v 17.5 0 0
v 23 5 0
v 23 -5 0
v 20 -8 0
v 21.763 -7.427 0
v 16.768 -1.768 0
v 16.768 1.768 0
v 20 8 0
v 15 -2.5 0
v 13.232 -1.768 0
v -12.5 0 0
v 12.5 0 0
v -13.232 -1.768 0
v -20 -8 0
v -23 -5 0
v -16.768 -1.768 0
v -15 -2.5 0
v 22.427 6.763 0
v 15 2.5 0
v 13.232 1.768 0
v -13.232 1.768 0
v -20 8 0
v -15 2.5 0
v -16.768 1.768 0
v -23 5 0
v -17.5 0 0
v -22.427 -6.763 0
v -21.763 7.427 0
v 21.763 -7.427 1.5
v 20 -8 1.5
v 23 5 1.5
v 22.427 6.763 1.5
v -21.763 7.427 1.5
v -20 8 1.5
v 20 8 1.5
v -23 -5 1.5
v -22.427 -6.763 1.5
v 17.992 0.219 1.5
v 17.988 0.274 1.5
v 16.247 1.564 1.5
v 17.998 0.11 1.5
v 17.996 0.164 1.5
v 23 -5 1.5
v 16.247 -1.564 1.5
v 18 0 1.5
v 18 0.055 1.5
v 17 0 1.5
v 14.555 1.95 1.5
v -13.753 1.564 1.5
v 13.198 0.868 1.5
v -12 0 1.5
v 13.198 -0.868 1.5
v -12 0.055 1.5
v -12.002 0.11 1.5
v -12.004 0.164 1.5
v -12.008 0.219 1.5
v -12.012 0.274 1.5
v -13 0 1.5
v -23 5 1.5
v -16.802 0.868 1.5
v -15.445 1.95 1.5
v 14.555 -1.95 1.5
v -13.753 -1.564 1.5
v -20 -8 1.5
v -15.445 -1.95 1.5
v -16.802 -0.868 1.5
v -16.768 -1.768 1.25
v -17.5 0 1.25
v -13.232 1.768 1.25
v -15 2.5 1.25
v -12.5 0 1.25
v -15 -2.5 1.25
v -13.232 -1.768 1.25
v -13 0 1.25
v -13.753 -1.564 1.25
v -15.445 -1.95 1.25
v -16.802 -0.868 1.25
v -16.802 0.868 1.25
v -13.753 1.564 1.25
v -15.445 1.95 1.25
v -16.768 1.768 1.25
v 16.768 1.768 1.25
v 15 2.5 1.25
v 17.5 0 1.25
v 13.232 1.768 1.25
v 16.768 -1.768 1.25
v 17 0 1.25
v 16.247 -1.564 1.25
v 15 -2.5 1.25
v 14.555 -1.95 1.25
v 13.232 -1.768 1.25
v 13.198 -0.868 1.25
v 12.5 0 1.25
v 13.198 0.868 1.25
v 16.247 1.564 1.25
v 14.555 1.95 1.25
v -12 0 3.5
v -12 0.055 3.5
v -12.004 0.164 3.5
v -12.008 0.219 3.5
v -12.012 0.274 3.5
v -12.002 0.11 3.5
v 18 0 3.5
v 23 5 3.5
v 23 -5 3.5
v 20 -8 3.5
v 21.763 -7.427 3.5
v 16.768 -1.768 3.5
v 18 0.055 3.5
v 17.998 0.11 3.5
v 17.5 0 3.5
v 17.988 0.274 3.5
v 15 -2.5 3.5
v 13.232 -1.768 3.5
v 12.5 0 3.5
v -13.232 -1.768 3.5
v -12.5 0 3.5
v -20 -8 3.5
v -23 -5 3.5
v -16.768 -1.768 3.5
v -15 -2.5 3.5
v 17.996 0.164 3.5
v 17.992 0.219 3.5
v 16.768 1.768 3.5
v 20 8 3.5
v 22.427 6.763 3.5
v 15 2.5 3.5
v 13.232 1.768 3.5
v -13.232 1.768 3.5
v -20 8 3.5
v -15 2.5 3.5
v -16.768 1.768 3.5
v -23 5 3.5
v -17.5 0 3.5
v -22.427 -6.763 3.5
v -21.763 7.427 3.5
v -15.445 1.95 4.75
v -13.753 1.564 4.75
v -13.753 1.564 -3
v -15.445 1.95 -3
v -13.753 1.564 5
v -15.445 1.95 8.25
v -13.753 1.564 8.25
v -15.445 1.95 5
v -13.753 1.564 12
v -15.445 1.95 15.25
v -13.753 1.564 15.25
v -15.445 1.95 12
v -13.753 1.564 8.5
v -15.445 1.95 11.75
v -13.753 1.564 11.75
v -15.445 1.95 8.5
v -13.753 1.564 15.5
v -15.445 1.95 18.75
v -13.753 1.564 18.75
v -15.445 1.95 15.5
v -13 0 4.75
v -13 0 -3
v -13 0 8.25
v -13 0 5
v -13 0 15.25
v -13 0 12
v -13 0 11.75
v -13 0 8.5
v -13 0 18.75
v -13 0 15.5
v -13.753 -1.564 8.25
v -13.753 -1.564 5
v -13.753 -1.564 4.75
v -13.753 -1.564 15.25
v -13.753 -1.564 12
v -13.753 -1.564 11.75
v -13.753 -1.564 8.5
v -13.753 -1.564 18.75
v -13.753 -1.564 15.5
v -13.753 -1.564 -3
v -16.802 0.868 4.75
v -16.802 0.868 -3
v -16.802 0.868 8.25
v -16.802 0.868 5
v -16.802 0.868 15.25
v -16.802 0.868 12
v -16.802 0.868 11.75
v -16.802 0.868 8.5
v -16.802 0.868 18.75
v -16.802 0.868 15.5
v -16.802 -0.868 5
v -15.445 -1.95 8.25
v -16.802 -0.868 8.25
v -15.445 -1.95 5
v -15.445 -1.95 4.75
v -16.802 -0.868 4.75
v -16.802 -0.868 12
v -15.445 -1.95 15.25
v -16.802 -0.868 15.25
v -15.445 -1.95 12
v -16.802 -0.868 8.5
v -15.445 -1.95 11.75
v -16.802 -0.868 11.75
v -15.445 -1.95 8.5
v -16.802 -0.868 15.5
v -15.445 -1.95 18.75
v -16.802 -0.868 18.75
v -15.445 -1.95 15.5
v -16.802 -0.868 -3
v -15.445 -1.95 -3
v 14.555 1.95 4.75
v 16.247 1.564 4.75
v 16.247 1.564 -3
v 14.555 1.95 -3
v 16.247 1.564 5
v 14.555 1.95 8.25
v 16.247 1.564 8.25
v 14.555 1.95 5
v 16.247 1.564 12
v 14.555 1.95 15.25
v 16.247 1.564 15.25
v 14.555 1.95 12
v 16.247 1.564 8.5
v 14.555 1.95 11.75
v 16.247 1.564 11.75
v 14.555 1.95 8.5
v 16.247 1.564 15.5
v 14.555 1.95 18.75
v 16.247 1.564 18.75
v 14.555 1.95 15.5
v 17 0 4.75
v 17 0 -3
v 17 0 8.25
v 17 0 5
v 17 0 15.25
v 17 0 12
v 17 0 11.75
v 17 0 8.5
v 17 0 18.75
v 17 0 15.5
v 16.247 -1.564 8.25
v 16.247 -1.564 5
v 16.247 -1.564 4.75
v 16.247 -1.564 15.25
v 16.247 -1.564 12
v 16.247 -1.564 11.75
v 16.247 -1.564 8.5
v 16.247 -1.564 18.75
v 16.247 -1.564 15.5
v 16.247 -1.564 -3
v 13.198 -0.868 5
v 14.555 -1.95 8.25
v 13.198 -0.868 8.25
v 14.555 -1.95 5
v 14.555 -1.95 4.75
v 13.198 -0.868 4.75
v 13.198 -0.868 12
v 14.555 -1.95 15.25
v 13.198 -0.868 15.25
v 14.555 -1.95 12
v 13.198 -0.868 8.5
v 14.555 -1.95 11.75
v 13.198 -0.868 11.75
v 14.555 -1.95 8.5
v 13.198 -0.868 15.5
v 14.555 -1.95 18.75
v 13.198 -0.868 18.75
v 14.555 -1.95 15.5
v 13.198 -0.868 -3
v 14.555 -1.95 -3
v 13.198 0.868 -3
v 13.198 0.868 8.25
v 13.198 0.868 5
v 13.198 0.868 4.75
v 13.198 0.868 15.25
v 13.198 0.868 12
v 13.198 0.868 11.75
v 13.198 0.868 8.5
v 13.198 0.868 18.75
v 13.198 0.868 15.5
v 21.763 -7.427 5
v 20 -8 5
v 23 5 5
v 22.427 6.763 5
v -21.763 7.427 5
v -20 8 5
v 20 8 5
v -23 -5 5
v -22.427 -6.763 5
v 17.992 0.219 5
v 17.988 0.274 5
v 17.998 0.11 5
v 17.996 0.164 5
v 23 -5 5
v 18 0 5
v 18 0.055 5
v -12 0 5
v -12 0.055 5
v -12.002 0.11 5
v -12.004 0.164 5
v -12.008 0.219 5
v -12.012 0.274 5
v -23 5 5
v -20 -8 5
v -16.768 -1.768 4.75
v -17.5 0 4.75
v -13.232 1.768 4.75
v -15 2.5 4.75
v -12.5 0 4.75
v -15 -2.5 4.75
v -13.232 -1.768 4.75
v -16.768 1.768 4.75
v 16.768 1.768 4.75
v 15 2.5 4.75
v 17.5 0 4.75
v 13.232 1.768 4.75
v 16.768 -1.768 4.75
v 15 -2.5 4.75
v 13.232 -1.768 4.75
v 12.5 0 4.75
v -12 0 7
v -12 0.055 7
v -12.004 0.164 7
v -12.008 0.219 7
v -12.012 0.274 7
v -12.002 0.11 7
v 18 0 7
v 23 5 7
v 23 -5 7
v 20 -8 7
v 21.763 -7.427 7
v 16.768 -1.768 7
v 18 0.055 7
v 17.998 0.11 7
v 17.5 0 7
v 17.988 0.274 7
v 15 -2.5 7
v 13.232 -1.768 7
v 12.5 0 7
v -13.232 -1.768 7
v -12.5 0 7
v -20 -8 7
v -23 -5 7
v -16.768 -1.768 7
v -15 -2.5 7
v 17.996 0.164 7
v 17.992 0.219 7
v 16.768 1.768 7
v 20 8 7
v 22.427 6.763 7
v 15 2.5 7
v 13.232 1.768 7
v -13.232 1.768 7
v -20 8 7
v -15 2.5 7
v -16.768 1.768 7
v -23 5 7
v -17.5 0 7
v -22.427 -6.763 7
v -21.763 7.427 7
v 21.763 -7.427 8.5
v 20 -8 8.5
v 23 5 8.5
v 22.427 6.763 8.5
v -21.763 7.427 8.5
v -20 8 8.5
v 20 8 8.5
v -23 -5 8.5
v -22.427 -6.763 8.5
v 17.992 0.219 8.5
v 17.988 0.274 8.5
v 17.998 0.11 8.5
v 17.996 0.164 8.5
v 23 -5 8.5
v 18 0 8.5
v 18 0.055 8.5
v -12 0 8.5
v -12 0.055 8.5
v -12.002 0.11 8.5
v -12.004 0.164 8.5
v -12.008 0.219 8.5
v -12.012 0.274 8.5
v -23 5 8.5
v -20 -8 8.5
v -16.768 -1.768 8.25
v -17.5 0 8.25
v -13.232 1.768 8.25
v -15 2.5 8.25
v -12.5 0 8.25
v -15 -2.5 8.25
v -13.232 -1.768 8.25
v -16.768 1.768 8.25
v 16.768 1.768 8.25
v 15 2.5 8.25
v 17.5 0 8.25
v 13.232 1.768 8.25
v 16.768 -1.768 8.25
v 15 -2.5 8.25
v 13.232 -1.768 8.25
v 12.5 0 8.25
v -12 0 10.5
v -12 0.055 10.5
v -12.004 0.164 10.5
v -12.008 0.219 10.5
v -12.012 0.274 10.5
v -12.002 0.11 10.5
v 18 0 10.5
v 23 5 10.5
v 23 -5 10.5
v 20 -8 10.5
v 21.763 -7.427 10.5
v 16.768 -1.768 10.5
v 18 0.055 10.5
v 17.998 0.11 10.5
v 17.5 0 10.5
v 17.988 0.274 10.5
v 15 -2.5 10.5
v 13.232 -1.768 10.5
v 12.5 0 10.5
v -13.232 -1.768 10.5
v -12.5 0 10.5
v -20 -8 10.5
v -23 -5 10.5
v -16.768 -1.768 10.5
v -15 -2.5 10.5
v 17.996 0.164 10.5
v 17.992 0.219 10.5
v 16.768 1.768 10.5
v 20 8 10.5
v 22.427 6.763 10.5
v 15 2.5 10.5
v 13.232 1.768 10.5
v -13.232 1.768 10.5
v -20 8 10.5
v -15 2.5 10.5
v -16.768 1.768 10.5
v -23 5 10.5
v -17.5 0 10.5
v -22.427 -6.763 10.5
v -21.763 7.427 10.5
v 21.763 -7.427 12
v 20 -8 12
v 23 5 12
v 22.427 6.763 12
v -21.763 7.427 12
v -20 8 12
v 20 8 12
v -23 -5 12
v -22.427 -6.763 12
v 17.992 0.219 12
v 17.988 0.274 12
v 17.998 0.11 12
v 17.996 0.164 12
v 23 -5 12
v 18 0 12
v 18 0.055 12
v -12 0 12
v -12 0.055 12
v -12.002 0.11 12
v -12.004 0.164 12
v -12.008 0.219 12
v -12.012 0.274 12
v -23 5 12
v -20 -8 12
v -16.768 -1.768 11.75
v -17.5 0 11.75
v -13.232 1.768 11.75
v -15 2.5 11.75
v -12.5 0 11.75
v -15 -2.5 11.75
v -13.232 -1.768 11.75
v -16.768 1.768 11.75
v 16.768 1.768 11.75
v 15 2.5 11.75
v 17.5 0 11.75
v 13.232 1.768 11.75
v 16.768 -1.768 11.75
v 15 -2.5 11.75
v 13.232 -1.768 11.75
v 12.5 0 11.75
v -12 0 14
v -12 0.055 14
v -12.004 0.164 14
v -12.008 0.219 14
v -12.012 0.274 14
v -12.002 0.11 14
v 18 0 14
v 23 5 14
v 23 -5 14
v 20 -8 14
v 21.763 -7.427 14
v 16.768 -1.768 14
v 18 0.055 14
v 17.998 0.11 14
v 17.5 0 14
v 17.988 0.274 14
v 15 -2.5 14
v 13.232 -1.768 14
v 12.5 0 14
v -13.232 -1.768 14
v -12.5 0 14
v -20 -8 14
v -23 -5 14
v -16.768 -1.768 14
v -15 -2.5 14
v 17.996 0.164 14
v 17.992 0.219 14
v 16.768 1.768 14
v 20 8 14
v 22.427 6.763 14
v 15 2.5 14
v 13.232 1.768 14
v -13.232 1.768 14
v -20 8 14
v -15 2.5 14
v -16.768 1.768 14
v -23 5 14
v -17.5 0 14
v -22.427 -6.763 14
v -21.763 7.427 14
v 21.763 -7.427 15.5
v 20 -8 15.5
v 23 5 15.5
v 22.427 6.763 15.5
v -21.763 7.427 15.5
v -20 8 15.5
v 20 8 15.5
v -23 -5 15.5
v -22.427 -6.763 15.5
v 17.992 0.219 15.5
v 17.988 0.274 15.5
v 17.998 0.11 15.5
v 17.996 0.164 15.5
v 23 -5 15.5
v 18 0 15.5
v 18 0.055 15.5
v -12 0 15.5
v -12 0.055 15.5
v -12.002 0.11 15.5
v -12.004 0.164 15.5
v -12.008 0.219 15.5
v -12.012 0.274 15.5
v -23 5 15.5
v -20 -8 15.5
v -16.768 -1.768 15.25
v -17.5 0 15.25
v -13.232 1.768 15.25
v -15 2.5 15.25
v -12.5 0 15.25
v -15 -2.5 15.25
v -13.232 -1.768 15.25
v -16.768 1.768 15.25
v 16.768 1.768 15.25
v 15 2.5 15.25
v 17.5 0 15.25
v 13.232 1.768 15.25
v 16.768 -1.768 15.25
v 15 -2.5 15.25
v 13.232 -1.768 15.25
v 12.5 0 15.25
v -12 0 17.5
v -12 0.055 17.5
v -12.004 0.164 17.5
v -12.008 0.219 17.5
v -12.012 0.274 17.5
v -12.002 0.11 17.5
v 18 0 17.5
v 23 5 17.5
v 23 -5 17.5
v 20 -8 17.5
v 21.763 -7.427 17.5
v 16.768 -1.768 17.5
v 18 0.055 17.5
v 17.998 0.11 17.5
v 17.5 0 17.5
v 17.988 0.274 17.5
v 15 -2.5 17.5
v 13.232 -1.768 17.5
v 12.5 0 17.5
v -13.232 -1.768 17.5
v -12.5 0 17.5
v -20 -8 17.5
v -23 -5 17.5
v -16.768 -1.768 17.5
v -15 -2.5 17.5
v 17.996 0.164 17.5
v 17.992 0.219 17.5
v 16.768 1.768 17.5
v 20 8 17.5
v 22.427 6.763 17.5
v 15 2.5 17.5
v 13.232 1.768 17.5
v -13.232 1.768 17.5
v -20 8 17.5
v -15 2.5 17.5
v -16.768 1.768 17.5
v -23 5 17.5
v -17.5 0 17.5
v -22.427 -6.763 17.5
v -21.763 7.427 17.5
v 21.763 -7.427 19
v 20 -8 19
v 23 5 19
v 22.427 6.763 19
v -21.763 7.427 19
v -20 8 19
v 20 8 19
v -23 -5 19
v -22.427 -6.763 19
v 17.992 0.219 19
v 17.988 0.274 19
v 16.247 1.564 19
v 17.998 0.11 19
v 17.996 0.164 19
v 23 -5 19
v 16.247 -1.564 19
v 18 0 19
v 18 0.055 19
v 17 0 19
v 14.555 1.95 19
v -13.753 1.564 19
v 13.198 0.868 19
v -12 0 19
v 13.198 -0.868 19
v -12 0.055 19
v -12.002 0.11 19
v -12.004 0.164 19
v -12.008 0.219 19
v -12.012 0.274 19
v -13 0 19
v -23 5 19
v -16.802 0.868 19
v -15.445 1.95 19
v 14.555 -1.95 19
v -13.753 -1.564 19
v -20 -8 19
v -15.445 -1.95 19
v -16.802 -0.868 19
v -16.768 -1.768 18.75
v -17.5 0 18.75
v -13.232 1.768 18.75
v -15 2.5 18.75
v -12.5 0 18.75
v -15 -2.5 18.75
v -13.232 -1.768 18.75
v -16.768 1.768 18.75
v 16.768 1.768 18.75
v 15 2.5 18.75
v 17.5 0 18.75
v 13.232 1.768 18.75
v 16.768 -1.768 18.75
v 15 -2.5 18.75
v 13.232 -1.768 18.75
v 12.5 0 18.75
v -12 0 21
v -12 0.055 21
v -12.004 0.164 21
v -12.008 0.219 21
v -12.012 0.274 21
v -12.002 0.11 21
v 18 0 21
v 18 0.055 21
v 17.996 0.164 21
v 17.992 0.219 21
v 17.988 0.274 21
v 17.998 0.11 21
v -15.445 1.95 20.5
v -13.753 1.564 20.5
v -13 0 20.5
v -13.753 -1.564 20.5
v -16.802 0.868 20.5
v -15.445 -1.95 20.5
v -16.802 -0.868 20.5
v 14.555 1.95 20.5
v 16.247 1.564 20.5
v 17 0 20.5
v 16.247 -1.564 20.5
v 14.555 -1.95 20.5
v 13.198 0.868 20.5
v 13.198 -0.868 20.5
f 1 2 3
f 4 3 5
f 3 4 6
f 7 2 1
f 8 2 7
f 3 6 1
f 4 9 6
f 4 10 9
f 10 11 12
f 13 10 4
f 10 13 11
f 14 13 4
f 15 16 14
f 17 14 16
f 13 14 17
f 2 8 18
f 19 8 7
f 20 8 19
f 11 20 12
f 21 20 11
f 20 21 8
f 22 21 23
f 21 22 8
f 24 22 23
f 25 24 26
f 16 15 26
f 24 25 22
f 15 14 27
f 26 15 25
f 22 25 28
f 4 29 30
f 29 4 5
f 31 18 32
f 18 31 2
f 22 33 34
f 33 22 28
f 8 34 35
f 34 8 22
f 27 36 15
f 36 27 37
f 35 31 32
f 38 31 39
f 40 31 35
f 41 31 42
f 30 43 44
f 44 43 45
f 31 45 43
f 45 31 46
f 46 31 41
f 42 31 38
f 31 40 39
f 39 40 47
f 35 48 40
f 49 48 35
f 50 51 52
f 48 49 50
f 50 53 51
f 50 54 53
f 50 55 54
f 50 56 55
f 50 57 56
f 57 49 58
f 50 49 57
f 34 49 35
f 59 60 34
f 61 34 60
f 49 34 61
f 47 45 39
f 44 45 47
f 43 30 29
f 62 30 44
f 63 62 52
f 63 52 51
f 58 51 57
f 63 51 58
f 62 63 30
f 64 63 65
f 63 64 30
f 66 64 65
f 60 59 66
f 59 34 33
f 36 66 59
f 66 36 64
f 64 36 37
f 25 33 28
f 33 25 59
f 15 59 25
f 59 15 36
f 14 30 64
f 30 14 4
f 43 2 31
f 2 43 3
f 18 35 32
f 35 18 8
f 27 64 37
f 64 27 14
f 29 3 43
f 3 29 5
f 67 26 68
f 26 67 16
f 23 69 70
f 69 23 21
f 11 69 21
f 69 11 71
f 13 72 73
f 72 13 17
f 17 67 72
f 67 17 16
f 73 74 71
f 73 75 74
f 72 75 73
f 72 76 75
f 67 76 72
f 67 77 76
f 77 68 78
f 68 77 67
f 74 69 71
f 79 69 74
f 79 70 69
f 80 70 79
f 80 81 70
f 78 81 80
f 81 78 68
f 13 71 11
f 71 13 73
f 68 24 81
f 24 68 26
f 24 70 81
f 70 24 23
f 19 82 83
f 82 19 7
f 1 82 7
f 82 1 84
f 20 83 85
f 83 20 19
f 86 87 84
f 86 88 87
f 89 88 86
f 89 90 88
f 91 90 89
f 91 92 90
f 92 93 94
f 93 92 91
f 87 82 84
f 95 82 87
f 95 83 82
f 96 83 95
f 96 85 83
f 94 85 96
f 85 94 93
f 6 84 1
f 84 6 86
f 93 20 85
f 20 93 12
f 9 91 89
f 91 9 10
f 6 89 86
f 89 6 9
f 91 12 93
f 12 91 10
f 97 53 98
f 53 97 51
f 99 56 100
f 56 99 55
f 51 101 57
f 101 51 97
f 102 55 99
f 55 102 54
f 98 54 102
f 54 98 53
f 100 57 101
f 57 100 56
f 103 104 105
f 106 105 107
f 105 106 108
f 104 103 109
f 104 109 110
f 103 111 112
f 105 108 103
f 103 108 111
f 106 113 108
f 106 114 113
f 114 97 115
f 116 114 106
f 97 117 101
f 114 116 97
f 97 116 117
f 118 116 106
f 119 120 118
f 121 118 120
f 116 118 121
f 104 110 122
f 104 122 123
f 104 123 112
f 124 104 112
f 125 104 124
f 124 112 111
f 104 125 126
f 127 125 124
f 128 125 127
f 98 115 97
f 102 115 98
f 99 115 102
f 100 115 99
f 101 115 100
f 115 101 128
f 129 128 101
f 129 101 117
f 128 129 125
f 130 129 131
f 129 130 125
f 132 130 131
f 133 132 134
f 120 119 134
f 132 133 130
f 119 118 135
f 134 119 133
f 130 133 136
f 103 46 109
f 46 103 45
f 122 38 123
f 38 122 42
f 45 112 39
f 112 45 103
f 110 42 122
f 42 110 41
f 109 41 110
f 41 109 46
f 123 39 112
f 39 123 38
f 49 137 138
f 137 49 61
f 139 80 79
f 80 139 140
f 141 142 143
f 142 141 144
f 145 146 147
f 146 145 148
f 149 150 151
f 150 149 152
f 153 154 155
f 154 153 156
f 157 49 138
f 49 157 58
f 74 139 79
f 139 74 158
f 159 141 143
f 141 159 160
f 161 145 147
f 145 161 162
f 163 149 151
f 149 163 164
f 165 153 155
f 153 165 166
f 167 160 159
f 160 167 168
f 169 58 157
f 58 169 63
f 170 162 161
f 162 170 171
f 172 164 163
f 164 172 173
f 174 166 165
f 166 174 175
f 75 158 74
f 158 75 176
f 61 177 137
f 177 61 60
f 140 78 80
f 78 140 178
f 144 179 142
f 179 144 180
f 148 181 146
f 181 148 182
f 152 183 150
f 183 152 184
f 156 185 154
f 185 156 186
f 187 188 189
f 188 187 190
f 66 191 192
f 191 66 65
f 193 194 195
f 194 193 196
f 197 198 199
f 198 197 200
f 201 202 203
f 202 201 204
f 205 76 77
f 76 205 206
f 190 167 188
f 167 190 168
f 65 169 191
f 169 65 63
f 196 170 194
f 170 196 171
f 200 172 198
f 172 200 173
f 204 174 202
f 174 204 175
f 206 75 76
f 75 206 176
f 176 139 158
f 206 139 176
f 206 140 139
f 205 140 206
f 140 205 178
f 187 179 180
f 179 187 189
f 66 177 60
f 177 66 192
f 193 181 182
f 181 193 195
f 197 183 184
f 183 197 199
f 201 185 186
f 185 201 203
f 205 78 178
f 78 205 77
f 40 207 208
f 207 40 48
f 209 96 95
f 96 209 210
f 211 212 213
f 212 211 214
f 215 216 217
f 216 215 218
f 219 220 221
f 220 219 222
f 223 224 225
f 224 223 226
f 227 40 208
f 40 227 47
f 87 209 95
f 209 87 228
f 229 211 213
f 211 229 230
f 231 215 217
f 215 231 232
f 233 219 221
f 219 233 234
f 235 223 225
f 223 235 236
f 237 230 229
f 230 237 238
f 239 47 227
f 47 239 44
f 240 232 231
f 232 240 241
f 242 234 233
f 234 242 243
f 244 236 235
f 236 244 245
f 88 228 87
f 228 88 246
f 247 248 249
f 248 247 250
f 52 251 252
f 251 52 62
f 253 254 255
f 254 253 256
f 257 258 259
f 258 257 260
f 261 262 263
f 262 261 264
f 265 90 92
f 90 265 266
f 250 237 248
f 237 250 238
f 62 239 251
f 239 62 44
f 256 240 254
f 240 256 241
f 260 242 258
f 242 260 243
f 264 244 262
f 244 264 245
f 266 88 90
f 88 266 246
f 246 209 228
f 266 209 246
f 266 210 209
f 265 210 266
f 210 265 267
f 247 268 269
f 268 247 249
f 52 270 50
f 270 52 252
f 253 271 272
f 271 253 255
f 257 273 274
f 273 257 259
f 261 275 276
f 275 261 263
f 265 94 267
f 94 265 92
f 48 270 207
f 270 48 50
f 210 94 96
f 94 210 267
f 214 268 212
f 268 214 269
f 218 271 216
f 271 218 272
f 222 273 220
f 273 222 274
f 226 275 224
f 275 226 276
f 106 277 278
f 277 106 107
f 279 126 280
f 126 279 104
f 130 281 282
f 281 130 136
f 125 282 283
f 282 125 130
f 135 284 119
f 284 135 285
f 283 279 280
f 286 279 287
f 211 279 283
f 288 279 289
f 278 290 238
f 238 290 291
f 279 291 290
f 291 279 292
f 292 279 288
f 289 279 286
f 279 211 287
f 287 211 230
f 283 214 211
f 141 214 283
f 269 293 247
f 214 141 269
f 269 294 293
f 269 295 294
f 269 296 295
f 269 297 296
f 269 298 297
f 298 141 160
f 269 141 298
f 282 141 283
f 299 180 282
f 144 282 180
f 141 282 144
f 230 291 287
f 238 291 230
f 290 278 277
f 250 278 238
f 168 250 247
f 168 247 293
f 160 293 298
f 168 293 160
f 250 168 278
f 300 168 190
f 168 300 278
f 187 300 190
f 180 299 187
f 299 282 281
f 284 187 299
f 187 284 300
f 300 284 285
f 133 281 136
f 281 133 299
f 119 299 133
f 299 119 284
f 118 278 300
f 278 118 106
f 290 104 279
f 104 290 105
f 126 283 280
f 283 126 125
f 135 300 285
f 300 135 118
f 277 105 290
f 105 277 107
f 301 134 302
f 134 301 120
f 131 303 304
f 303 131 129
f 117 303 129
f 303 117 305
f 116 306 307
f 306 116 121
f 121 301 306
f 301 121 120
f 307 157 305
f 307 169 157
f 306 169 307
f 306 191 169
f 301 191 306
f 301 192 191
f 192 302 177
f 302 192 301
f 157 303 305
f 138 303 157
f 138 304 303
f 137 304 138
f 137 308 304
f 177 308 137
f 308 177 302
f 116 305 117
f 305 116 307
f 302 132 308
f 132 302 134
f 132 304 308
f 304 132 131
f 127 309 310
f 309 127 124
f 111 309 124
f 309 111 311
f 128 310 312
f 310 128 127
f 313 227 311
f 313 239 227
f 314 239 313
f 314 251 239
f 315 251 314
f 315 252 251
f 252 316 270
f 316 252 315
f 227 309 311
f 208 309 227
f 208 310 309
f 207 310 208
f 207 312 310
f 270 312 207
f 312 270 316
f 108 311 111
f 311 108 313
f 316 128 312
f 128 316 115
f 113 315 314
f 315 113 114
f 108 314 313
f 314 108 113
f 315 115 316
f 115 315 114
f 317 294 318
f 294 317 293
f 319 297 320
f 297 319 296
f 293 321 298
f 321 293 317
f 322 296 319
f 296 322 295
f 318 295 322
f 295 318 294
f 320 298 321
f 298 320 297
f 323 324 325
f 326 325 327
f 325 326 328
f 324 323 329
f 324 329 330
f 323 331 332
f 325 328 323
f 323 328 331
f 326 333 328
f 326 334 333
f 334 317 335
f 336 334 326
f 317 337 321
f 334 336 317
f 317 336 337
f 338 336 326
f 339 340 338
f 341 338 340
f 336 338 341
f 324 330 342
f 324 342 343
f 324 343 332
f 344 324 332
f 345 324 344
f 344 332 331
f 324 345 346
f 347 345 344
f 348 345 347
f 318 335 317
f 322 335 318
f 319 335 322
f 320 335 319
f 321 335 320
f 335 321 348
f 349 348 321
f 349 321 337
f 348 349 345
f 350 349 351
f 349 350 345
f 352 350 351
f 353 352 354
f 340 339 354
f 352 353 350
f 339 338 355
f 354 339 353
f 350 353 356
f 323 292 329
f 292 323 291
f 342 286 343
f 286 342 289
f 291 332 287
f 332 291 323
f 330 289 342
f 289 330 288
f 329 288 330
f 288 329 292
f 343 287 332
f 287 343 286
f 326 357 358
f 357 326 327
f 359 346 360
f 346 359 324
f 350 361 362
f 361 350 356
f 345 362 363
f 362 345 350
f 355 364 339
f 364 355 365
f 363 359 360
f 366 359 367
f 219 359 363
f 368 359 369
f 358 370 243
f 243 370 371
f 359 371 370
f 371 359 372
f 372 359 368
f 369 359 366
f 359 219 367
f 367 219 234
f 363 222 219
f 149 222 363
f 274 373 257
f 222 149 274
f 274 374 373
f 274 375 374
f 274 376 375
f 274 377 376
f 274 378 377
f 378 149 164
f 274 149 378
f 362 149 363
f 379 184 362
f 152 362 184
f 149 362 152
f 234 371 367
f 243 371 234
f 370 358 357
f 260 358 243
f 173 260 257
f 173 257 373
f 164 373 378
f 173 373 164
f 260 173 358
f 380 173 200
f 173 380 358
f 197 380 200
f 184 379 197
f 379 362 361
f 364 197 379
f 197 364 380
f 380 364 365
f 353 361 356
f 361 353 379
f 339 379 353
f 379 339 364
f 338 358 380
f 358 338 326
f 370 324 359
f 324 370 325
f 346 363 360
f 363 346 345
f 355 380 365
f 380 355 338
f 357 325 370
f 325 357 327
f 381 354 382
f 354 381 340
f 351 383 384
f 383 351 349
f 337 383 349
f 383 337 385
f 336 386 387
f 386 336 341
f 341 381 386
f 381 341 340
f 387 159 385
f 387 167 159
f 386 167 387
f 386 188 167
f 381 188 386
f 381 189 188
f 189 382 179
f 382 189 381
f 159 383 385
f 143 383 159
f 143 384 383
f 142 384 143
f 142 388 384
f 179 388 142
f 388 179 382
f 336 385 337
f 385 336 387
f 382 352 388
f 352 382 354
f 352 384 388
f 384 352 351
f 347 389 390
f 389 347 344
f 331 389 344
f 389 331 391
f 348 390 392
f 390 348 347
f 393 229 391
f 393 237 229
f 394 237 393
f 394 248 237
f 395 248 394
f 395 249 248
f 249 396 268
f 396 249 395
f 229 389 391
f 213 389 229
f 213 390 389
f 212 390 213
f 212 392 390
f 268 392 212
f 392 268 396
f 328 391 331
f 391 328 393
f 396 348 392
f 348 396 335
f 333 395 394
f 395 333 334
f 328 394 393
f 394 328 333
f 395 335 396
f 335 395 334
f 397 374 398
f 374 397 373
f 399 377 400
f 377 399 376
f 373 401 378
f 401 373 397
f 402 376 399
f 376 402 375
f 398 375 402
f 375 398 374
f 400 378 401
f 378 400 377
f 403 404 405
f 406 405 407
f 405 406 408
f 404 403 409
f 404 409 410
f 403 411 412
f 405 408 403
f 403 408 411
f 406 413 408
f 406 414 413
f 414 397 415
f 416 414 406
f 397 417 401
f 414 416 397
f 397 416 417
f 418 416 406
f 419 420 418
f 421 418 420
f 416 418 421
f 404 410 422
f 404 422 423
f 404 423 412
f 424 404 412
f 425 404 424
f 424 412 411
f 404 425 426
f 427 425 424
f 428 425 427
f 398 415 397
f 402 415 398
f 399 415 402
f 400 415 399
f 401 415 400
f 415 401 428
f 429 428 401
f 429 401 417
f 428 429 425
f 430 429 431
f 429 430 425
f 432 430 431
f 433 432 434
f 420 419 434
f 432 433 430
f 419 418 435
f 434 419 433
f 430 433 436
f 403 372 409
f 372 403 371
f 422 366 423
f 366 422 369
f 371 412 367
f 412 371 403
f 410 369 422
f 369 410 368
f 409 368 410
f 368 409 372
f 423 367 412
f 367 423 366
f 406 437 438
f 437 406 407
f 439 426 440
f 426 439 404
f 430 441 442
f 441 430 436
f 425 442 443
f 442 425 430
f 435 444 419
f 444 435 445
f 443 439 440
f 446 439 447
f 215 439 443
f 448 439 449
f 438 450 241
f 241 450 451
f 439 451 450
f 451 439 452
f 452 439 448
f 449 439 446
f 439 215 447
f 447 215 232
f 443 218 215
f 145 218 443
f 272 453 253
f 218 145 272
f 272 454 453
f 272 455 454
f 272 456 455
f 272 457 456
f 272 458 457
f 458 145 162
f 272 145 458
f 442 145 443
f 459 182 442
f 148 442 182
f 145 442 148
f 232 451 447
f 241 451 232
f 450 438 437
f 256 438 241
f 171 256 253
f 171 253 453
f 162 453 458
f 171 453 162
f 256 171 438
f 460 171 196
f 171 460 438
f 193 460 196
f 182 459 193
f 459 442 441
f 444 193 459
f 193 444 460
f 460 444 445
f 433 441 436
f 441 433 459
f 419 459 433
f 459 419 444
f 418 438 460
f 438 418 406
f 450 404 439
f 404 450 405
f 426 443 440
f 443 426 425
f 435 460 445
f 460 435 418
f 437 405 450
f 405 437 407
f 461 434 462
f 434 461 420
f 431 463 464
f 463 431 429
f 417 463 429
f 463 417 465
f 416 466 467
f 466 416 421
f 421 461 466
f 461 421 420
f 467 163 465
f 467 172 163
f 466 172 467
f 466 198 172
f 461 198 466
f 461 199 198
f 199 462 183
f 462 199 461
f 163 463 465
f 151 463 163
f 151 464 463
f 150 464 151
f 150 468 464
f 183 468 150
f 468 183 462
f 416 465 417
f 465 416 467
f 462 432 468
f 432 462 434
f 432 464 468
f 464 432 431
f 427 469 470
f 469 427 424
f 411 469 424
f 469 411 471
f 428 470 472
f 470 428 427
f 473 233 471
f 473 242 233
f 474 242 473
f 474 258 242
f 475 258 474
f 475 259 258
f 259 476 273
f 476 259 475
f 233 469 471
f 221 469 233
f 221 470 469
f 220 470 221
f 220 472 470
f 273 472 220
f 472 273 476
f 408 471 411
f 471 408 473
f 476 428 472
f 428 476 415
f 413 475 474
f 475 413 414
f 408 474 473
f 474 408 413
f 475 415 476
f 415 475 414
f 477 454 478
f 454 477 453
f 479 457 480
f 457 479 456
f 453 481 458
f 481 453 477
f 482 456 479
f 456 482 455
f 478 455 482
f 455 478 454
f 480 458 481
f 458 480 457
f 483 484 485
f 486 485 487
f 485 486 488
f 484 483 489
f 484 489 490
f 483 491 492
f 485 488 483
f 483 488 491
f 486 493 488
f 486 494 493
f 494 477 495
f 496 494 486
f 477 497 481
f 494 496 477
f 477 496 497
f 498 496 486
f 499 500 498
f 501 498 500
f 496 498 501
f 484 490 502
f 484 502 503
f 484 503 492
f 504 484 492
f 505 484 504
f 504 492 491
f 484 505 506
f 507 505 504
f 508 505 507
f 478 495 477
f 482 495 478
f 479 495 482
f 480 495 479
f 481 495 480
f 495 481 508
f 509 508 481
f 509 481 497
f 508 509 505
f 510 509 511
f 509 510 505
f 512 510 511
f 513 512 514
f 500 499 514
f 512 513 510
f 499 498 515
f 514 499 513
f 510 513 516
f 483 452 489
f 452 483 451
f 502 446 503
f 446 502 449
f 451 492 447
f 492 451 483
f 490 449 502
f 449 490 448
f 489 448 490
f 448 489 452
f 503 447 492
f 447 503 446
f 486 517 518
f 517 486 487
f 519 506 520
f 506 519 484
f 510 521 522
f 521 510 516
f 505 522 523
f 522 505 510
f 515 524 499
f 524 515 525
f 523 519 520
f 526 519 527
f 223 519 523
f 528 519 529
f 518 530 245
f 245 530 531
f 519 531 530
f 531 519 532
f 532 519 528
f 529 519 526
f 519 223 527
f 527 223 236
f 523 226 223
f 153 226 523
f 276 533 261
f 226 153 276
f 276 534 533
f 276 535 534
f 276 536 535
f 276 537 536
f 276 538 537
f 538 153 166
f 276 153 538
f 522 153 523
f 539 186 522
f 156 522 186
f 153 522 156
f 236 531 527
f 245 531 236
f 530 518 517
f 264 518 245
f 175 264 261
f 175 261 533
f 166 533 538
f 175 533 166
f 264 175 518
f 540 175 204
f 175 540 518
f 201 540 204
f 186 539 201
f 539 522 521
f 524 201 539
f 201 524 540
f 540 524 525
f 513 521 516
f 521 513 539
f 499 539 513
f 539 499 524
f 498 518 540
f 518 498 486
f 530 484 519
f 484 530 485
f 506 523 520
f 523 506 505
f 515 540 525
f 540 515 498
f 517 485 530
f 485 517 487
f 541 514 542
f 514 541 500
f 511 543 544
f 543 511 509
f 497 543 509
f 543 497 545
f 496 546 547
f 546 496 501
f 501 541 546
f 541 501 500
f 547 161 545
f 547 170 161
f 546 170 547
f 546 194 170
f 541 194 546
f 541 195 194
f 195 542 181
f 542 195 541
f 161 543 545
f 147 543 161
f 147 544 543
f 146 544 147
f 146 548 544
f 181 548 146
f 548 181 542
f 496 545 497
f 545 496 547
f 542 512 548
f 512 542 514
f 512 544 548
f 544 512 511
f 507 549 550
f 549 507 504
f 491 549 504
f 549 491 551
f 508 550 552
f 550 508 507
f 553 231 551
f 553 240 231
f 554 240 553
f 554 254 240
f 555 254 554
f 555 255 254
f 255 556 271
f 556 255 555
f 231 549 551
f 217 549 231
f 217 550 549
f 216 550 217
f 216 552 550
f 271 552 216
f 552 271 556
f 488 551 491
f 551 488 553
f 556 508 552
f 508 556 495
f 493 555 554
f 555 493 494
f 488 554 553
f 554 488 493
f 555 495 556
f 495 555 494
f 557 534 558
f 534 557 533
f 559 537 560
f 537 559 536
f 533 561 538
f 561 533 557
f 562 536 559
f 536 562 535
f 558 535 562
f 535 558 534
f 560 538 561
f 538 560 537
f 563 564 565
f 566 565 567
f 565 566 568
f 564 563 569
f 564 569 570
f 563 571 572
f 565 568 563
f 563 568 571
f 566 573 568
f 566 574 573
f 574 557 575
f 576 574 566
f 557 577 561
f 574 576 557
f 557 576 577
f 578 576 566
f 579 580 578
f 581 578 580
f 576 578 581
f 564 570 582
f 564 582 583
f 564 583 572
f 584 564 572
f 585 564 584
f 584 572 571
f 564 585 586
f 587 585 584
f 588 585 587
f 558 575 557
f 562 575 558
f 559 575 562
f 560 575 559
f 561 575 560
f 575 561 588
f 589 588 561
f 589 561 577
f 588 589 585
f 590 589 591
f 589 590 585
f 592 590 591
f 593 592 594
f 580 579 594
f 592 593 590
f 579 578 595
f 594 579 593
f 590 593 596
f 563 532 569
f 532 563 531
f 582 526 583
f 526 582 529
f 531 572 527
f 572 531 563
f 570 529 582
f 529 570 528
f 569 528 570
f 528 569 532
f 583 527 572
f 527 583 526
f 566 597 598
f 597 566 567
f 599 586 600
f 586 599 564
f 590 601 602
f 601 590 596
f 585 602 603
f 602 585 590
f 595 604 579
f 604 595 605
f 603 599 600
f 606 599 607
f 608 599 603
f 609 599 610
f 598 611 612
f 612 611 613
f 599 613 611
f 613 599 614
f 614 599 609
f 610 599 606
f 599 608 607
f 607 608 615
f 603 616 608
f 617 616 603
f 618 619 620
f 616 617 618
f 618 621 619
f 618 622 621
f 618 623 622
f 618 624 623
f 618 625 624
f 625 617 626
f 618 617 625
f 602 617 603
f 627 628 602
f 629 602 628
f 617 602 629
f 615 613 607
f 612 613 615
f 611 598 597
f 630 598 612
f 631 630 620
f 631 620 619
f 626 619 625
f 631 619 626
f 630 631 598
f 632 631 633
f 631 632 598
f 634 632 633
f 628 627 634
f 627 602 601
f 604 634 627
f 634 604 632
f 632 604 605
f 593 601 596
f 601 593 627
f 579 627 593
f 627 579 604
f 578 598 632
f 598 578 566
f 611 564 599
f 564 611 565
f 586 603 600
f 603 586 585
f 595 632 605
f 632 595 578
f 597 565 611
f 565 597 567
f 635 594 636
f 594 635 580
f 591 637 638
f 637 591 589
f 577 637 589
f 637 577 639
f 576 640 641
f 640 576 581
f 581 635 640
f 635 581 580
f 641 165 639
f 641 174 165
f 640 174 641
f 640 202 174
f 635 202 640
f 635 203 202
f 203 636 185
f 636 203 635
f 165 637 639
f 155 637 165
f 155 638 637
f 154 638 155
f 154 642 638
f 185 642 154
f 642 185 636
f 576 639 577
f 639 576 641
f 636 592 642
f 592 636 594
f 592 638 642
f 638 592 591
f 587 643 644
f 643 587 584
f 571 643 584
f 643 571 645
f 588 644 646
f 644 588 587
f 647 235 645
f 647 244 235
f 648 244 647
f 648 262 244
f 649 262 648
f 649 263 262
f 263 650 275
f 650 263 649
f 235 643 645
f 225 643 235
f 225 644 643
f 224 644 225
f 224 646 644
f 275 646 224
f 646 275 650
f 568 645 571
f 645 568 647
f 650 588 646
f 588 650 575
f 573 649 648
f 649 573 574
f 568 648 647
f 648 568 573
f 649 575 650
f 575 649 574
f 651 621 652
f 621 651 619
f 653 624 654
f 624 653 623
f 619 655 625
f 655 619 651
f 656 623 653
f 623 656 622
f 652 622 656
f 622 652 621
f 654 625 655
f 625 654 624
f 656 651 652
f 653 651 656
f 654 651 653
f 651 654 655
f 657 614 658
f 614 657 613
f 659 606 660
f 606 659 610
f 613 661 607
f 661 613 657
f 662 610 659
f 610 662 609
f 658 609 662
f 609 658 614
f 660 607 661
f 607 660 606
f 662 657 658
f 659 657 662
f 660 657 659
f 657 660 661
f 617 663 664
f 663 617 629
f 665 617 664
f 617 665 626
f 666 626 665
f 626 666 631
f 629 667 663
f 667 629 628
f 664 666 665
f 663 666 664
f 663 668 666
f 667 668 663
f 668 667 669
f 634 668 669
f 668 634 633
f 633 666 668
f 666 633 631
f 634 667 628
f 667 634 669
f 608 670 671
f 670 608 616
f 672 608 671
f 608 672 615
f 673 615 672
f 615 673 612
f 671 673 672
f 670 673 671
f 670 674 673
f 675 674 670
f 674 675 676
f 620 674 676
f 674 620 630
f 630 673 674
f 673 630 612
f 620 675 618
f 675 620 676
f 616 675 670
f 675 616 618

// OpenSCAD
// Parameters for the link plate
link_plate_length = 40; // Length of the link plate
link_plate_width = 10;  // Width of the link plate
link_plate_thickness = 1.5; // Thickness of the link plate
hole_diameter = 5; // Diameter of the holes
hole_spacing = 30; // Distance between the centers of the two holes
curvature_radius = 3; // Curvature for the edges

// Parameters for the bolt
bolt_diameter = 4; // Diameter of the bolt
bolt_length = 6; // Shortened length of the bolt

// Parameters for the nut
nut_diameter = 6; // Reduced diameter of the nut
nut_thickness = 2; // Reduced thickness of the nut
nut_offset = 0; // Position flush with the link plate

// Function to create a link plate
module link_plate() {
    difference() {
        // Base plate
        linear_extrude(height = link_plate_thickness) {
            offset(r = curvature_radius) 
                square([link_plate_length, link_plate_width], center = true);
        }
        // Holes
        translate([-hole_spacing / 2, 0, 0])
            cylinder(h = link_plate_thickness + 1, d = hole_diameter, center = true);
        translate([hole_spacing / 2, 0, 0])
            cylinder(h = link_plate_thickness + 1, d = hole_diameter, center = true);
    }
}

// Function to create a bolt
module bolt() {
    cylinder(h = bolt_length, d = bolt_diameter, center = false);
}

// Function to create a nut
module nut() {
    difference() {
        // Hexagonal prism
        linear_extrude(height = nut_thickness)
            polygon(points = [
                [cos(0) * nut_diameter / 2, sin(0) * nut_diameter / 2],
                [cos(PI / 3) * nut_diameter / 2, sin(PI / 3) * nut_diameter / 2],
                [cos(2 * PI / 3) * nut_diameter / 2, sin(2 * PI / 3) * nut_diameter / 2],
                [cos(PI) * nut_diameter / 2, sin(PI) * nut_diameter / 2],
                [cos(4 * PI / 3) * nut_diameter / 2, sin(4 * PI / 3) * nut_diameter / 2],
                [cos(5 * PI / 3) * nut_diameter / 2, sin(5 * PI / 3) * nut_diameter / 2]
            ]);
        // Internal threading (hole)
        translate([0, 0, -1])
            cylinder(h = nut_thickness + 2, d = bolt_diameter, center = false);
    }
}

// Assembly of the flexible coupling
module flexible_coupling() {
    for (i = [0:5]) {
        translate([0, 0, i * (link_plate_thickness + 2)]) { // Adjusted spacing between plates
            link_plate();
            // Add bolts and nuts
            translate([-hole_spacing / 2, 0, -bolt_length / 2])
                bolt();
            translate([hole_spacing / 2, 0, -bolt_length / 2])
                bolt();
            translate([-hole_spacing / 2, 0, link_plate_thickness])
                nut();
            translate([hole_spacing / 2, 0, link_plate_thickness])
                nut();
        }
    }
}

// Render the flexible coupling
flexible_coupling();
